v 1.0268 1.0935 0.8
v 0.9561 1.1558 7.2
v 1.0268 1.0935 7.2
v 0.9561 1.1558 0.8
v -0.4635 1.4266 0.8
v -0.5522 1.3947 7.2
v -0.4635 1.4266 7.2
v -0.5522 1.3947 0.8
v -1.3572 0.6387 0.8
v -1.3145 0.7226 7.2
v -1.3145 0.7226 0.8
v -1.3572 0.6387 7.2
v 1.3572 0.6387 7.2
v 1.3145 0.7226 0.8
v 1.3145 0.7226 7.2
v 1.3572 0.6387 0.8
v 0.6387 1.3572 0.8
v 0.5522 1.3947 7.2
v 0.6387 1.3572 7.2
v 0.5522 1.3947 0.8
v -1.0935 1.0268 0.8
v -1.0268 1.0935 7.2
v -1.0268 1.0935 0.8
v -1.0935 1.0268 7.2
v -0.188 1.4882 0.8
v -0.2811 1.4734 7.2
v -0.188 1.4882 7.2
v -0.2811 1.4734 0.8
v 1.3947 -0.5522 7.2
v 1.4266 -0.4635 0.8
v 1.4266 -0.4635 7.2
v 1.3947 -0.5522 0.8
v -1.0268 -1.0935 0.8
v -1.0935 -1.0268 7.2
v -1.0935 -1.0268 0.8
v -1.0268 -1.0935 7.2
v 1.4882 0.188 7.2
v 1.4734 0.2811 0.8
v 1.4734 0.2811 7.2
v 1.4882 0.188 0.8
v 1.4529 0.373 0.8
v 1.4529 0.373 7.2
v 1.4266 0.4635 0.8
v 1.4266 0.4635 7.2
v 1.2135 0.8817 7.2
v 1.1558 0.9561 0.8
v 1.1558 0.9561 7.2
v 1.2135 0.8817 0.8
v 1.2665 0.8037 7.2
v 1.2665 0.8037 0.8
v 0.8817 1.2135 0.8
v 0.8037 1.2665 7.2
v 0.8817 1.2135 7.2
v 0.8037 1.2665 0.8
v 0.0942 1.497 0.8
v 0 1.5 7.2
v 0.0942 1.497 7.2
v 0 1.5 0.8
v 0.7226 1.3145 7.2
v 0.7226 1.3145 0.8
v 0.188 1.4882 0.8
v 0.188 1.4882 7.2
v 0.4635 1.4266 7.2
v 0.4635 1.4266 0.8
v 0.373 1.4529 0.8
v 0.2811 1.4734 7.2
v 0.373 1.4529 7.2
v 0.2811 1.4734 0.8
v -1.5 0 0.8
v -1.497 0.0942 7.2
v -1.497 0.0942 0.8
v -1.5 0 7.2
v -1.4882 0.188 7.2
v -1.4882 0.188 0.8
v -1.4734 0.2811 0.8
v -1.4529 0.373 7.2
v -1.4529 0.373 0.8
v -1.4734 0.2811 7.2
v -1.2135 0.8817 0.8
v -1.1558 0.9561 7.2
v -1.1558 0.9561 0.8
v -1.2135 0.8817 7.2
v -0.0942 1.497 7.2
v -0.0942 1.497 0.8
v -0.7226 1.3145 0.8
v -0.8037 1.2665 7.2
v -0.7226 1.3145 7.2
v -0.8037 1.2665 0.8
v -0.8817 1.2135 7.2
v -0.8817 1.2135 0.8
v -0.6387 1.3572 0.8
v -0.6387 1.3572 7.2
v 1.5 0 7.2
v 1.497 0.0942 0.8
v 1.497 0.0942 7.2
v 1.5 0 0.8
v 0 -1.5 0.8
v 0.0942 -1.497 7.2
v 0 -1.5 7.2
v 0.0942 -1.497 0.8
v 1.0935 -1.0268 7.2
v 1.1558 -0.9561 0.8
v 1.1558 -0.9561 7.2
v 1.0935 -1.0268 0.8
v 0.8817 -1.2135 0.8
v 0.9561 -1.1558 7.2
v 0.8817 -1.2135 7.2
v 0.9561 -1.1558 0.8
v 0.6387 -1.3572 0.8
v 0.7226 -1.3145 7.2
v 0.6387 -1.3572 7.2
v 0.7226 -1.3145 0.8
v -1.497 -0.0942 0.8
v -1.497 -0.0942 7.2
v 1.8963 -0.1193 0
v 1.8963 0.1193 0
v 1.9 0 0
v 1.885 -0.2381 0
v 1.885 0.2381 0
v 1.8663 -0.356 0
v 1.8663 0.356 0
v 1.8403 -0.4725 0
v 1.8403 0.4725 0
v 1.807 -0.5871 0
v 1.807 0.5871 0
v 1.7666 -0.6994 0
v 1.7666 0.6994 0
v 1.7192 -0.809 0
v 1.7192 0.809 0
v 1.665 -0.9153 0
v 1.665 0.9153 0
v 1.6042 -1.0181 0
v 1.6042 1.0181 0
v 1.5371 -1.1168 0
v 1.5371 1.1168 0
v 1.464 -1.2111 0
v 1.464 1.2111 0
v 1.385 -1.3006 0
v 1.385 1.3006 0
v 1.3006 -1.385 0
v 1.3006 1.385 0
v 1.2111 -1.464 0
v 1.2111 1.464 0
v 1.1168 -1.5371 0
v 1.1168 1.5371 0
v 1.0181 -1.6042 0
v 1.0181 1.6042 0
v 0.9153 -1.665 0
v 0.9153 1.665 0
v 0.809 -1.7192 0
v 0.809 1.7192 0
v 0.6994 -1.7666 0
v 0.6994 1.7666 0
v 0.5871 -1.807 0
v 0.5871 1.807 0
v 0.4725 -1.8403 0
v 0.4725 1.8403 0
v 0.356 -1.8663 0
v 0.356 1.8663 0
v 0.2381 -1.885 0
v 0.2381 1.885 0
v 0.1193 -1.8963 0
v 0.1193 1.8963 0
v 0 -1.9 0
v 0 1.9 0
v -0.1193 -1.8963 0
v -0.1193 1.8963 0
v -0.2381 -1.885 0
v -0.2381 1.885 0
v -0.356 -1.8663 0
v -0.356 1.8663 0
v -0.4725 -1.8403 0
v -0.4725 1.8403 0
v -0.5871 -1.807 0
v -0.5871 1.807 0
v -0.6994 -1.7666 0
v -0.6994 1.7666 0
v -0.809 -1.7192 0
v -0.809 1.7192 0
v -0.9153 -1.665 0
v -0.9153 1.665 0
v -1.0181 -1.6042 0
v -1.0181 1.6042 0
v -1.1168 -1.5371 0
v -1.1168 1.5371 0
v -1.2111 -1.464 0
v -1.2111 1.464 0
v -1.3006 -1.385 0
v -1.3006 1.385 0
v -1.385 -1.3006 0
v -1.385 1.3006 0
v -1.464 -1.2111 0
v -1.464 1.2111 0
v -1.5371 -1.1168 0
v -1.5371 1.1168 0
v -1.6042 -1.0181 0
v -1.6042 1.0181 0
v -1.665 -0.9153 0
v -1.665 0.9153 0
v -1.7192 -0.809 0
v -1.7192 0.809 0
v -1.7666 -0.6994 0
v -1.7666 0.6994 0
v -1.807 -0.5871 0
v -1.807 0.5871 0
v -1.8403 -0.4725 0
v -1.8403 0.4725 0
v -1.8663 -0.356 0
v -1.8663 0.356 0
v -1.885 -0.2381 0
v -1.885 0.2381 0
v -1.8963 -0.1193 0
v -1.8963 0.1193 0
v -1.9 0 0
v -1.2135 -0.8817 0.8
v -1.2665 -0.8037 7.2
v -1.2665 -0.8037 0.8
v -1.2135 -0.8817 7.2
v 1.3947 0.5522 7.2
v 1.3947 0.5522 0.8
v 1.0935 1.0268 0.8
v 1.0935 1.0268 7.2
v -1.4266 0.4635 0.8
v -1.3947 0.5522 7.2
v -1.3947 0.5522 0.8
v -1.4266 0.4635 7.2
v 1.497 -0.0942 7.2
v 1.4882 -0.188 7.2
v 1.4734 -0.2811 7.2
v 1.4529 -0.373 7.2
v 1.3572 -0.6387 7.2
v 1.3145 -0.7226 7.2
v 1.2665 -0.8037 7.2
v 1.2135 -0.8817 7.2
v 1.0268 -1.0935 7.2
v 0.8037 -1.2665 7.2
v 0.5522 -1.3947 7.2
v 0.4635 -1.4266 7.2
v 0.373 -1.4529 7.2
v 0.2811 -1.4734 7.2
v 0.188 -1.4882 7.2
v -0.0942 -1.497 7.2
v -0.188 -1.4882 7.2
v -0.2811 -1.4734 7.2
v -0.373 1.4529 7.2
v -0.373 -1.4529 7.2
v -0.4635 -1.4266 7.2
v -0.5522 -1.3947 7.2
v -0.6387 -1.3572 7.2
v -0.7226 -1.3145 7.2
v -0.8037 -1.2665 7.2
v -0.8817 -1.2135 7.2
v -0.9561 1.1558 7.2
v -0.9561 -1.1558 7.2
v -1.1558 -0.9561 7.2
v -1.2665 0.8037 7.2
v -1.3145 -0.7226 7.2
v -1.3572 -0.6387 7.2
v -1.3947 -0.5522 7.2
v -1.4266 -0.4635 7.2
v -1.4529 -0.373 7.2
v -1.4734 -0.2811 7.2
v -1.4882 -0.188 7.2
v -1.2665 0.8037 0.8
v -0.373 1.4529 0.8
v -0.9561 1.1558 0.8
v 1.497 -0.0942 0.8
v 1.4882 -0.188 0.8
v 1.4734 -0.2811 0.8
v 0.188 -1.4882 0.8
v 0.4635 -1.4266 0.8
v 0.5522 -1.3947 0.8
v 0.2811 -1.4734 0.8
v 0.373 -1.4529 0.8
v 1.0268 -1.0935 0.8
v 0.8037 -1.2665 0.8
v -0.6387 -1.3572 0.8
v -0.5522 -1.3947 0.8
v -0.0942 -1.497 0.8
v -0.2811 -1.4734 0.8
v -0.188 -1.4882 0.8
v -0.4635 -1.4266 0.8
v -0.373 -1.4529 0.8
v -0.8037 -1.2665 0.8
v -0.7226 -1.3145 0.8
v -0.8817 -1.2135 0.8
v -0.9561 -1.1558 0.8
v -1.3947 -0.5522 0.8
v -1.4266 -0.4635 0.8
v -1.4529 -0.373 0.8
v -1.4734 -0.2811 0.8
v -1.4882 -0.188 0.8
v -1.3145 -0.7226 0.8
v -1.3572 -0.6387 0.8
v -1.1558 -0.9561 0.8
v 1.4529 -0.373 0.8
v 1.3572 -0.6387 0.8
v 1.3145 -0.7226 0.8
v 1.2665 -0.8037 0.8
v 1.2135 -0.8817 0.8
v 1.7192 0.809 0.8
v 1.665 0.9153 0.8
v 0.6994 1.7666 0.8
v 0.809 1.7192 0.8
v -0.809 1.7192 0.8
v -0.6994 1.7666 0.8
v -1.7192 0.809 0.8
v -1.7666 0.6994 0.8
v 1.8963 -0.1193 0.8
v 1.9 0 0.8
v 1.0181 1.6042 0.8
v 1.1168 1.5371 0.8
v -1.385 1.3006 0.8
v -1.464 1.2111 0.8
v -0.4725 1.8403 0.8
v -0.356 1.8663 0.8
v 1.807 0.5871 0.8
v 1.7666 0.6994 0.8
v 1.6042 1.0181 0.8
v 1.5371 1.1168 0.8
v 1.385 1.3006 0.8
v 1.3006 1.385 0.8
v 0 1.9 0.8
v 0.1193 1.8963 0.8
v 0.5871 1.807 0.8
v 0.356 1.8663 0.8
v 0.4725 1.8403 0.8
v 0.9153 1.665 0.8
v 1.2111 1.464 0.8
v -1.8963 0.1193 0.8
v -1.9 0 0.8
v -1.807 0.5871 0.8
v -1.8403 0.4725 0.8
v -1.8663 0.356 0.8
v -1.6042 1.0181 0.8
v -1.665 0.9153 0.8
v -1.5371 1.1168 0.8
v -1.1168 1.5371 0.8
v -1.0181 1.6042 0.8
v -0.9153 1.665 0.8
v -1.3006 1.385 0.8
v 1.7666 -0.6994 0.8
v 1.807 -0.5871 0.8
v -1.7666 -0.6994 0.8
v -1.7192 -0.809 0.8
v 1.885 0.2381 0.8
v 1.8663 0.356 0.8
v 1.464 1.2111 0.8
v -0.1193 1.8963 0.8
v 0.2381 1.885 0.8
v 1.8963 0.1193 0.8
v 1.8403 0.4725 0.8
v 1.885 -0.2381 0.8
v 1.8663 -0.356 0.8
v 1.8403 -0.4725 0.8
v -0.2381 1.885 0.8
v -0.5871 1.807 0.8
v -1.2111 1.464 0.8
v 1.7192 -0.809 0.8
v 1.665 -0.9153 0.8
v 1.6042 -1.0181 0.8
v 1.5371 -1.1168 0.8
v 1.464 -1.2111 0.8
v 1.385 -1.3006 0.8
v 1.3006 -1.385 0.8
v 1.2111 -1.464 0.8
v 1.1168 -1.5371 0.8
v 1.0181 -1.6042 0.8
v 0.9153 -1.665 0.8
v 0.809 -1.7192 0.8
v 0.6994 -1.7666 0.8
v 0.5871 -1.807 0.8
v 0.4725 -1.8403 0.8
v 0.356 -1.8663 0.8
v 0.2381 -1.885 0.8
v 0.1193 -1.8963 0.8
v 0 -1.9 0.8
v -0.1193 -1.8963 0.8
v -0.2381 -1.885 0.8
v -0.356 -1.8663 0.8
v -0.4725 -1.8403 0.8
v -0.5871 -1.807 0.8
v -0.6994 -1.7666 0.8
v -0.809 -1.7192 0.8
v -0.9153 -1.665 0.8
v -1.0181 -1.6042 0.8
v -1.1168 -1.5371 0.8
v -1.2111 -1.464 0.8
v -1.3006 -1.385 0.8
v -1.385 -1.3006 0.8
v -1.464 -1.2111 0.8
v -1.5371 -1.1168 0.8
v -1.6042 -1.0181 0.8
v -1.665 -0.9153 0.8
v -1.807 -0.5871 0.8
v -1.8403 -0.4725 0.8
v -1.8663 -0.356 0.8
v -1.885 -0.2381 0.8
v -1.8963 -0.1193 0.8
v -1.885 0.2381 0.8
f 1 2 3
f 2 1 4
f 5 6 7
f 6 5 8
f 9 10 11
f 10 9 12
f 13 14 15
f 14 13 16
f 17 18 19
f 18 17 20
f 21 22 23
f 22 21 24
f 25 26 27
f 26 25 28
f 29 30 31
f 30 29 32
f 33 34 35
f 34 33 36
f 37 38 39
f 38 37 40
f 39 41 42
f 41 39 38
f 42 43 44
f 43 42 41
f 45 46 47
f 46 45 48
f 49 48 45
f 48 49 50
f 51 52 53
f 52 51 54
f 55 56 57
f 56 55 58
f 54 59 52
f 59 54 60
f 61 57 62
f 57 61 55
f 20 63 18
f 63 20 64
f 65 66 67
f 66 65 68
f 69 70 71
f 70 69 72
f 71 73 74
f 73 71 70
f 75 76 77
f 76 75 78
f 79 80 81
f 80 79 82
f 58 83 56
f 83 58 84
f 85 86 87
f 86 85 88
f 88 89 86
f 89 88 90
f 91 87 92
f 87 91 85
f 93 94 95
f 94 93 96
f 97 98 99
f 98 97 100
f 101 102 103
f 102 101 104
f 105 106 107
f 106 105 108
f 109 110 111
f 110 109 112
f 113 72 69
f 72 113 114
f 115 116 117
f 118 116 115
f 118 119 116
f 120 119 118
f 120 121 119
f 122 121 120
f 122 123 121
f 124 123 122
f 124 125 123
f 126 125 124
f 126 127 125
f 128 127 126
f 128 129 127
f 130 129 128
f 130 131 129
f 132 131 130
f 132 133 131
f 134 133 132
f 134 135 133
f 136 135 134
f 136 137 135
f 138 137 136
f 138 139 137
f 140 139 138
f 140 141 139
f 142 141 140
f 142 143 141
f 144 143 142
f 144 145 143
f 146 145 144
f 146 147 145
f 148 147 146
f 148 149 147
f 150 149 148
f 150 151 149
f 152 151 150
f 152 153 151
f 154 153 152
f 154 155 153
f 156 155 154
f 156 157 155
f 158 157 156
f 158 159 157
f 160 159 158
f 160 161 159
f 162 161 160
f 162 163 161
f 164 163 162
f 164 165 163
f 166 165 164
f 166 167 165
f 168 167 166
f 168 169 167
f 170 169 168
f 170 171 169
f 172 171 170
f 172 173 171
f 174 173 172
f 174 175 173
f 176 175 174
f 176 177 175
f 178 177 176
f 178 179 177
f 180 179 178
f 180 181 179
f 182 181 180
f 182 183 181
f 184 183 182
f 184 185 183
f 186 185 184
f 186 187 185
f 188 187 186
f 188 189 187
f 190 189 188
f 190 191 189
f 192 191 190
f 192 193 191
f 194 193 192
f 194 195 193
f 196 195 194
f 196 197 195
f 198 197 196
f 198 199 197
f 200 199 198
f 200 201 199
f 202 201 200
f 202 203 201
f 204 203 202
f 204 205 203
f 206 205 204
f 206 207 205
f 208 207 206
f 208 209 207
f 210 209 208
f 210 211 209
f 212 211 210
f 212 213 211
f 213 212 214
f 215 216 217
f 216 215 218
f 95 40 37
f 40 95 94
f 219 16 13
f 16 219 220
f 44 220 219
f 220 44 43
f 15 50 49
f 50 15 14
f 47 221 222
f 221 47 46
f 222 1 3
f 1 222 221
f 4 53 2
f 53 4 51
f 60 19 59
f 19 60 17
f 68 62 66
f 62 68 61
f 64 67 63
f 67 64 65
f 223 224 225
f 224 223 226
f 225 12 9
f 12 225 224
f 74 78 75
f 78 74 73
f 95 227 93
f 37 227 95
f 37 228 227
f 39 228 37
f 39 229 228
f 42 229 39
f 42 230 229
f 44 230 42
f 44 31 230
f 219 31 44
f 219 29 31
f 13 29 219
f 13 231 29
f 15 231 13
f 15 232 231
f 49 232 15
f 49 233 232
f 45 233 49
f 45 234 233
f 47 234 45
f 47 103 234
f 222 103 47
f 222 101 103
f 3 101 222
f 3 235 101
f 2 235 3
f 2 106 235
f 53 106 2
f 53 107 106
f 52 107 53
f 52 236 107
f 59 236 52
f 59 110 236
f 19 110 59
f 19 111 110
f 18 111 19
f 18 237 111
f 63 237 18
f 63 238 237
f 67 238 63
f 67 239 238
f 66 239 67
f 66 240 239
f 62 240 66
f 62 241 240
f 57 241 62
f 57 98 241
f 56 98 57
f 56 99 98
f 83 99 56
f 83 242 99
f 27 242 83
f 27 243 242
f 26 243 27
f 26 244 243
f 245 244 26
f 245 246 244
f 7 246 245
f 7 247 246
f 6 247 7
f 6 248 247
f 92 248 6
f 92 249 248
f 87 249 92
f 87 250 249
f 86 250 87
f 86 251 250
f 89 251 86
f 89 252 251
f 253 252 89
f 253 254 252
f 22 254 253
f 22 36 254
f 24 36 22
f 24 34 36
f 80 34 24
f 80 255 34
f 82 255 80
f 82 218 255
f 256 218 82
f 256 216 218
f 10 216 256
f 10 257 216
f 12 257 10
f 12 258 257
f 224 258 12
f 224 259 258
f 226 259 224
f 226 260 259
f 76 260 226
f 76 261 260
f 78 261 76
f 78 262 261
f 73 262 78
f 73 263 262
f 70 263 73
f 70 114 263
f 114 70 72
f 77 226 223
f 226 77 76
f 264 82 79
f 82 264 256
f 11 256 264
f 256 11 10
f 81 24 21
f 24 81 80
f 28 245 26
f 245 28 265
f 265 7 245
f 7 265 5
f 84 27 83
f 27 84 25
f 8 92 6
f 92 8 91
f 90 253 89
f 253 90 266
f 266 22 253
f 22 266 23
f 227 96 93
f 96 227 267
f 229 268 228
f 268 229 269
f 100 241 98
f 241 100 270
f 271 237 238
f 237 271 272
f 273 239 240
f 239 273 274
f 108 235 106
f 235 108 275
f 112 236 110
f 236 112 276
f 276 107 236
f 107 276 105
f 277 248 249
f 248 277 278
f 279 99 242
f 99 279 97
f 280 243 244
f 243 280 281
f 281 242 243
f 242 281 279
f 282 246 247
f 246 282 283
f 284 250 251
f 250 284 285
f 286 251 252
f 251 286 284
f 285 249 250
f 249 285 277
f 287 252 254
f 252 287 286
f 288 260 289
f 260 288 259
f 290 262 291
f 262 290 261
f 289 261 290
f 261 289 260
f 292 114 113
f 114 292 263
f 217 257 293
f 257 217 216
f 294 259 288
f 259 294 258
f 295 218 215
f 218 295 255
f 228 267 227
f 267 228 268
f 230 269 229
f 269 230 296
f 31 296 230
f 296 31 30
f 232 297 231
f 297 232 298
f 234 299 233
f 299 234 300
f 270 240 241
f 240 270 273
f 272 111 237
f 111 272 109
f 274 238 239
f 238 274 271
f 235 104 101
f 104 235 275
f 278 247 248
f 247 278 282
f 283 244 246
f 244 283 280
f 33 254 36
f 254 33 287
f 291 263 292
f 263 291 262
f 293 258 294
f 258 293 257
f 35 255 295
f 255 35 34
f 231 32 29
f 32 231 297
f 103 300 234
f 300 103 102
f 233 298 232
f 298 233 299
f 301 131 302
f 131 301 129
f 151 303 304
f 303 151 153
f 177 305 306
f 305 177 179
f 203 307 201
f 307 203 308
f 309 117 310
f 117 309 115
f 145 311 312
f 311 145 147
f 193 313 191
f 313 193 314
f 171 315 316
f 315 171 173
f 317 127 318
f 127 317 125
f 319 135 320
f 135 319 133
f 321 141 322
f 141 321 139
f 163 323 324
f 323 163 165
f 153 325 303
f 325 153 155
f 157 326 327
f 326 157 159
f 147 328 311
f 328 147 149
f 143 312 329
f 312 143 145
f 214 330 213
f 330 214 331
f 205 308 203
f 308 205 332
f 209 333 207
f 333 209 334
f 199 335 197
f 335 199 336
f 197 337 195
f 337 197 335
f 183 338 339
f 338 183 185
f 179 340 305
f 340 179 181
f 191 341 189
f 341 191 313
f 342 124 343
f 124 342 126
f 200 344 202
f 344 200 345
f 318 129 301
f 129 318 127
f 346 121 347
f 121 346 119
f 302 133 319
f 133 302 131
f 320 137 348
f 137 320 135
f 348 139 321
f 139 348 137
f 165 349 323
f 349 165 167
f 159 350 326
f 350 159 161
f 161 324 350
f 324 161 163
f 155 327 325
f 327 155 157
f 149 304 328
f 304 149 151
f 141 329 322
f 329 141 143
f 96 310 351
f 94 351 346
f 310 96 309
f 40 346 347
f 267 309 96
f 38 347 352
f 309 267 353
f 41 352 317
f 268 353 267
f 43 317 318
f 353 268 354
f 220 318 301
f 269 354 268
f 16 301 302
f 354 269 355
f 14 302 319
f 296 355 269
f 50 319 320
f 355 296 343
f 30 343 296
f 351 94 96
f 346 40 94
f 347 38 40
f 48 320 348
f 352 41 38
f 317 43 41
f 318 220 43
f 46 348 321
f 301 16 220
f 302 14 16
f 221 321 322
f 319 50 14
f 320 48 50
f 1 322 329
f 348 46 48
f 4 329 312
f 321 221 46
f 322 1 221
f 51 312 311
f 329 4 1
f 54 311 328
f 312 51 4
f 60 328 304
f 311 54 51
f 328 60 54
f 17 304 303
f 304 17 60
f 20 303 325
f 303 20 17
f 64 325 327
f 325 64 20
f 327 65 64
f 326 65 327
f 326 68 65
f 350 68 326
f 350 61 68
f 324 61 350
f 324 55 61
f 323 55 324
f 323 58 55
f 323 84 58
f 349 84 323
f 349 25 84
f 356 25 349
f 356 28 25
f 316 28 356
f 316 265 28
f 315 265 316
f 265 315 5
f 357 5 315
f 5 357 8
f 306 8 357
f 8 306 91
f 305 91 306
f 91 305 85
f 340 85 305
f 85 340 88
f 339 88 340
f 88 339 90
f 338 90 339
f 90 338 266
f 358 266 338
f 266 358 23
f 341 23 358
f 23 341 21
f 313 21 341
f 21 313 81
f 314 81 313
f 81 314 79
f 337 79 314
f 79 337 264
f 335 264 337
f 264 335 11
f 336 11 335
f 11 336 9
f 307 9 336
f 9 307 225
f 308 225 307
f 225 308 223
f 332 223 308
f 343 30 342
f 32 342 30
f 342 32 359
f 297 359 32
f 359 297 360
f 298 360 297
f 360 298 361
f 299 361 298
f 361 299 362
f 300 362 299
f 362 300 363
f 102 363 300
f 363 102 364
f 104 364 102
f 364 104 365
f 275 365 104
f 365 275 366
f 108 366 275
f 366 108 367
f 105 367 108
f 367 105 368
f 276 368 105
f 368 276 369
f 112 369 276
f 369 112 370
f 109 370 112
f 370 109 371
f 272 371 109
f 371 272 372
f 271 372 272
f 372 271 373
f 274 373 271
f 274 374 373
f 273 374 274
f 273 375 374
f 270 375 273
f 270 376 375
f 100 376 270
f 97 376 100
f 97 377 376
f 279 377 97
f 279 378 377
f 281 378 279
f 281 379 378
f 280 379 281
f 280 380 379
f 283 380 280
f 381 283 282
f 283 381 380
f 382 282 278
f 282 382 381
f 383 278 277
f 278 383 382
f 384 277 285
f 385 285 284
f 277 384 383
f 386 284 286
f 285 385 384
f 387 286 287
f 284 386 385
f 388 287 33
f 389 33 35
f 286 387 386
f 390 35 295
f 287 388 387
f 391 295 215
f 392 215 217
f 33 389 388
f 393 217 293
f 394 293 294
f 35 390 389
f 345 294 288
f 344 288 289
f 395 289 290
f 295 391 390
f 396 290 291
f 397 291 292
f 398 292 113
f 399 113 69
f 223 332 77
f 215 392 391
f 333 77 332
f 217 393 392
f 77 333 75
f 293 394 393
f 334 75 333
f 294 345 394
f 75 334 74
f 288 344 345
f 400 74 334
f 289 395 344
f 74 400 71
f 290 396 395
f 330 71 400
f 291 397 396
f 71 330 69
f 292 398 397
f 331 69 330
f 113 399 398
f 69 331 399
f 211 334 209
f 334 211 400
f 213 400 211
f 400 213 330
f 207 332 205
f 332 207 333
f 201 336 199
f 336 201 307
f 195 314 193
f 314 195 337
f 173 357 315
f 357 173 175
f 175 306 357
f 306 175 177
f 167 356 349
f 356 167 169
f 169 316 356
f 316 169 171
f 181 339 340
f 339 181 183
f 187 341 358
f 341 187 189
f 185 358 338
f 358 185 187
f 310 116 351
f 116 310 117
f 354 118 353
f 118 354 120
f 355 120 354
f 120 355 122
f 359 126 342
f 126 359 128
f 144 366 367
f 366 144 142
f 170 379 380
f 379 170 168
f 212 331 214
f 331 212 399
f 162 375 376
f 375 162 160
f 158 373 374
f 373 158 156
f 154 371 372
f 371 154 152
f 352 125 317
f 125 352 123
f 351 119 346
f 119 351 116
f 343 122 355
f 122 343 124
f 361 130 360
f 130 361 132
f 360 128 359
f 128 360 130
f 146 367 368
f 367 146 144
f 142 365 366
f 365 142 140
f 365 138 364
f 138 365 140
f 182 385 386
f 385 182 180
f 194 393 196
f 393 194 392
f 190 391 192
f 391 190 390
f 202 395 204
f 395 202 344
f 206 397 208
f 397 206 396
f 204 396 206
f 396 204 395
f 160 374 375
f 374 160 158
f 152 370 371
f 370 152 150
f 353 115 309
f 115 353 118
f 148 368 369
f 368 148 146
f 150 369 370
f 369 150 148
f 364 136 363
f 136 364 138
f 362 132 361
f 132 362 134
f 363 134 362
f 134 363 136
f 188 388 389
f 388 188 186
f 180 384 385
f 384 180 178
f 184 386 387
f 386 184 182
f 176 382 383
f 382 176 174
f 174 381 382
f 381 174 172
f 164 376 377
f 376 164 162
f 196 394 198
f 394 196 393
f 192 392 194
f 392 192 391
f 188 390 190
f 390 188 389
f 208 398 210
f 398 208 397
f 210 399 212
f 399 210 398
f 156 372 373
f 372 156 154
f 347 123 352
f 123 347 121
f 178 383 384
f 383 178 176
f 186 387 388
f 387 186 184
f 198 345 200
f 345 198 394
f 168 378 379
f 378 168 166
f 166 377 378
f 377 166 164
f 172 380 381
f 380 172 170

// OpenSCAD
$fn=100;


BH = 7.2;
BD = 3;
TH = 6;
LH = 0.8;
LD = 3.8;

cylinder(d=BD, h=BH);
cylinder(d=LD, h=LH);
